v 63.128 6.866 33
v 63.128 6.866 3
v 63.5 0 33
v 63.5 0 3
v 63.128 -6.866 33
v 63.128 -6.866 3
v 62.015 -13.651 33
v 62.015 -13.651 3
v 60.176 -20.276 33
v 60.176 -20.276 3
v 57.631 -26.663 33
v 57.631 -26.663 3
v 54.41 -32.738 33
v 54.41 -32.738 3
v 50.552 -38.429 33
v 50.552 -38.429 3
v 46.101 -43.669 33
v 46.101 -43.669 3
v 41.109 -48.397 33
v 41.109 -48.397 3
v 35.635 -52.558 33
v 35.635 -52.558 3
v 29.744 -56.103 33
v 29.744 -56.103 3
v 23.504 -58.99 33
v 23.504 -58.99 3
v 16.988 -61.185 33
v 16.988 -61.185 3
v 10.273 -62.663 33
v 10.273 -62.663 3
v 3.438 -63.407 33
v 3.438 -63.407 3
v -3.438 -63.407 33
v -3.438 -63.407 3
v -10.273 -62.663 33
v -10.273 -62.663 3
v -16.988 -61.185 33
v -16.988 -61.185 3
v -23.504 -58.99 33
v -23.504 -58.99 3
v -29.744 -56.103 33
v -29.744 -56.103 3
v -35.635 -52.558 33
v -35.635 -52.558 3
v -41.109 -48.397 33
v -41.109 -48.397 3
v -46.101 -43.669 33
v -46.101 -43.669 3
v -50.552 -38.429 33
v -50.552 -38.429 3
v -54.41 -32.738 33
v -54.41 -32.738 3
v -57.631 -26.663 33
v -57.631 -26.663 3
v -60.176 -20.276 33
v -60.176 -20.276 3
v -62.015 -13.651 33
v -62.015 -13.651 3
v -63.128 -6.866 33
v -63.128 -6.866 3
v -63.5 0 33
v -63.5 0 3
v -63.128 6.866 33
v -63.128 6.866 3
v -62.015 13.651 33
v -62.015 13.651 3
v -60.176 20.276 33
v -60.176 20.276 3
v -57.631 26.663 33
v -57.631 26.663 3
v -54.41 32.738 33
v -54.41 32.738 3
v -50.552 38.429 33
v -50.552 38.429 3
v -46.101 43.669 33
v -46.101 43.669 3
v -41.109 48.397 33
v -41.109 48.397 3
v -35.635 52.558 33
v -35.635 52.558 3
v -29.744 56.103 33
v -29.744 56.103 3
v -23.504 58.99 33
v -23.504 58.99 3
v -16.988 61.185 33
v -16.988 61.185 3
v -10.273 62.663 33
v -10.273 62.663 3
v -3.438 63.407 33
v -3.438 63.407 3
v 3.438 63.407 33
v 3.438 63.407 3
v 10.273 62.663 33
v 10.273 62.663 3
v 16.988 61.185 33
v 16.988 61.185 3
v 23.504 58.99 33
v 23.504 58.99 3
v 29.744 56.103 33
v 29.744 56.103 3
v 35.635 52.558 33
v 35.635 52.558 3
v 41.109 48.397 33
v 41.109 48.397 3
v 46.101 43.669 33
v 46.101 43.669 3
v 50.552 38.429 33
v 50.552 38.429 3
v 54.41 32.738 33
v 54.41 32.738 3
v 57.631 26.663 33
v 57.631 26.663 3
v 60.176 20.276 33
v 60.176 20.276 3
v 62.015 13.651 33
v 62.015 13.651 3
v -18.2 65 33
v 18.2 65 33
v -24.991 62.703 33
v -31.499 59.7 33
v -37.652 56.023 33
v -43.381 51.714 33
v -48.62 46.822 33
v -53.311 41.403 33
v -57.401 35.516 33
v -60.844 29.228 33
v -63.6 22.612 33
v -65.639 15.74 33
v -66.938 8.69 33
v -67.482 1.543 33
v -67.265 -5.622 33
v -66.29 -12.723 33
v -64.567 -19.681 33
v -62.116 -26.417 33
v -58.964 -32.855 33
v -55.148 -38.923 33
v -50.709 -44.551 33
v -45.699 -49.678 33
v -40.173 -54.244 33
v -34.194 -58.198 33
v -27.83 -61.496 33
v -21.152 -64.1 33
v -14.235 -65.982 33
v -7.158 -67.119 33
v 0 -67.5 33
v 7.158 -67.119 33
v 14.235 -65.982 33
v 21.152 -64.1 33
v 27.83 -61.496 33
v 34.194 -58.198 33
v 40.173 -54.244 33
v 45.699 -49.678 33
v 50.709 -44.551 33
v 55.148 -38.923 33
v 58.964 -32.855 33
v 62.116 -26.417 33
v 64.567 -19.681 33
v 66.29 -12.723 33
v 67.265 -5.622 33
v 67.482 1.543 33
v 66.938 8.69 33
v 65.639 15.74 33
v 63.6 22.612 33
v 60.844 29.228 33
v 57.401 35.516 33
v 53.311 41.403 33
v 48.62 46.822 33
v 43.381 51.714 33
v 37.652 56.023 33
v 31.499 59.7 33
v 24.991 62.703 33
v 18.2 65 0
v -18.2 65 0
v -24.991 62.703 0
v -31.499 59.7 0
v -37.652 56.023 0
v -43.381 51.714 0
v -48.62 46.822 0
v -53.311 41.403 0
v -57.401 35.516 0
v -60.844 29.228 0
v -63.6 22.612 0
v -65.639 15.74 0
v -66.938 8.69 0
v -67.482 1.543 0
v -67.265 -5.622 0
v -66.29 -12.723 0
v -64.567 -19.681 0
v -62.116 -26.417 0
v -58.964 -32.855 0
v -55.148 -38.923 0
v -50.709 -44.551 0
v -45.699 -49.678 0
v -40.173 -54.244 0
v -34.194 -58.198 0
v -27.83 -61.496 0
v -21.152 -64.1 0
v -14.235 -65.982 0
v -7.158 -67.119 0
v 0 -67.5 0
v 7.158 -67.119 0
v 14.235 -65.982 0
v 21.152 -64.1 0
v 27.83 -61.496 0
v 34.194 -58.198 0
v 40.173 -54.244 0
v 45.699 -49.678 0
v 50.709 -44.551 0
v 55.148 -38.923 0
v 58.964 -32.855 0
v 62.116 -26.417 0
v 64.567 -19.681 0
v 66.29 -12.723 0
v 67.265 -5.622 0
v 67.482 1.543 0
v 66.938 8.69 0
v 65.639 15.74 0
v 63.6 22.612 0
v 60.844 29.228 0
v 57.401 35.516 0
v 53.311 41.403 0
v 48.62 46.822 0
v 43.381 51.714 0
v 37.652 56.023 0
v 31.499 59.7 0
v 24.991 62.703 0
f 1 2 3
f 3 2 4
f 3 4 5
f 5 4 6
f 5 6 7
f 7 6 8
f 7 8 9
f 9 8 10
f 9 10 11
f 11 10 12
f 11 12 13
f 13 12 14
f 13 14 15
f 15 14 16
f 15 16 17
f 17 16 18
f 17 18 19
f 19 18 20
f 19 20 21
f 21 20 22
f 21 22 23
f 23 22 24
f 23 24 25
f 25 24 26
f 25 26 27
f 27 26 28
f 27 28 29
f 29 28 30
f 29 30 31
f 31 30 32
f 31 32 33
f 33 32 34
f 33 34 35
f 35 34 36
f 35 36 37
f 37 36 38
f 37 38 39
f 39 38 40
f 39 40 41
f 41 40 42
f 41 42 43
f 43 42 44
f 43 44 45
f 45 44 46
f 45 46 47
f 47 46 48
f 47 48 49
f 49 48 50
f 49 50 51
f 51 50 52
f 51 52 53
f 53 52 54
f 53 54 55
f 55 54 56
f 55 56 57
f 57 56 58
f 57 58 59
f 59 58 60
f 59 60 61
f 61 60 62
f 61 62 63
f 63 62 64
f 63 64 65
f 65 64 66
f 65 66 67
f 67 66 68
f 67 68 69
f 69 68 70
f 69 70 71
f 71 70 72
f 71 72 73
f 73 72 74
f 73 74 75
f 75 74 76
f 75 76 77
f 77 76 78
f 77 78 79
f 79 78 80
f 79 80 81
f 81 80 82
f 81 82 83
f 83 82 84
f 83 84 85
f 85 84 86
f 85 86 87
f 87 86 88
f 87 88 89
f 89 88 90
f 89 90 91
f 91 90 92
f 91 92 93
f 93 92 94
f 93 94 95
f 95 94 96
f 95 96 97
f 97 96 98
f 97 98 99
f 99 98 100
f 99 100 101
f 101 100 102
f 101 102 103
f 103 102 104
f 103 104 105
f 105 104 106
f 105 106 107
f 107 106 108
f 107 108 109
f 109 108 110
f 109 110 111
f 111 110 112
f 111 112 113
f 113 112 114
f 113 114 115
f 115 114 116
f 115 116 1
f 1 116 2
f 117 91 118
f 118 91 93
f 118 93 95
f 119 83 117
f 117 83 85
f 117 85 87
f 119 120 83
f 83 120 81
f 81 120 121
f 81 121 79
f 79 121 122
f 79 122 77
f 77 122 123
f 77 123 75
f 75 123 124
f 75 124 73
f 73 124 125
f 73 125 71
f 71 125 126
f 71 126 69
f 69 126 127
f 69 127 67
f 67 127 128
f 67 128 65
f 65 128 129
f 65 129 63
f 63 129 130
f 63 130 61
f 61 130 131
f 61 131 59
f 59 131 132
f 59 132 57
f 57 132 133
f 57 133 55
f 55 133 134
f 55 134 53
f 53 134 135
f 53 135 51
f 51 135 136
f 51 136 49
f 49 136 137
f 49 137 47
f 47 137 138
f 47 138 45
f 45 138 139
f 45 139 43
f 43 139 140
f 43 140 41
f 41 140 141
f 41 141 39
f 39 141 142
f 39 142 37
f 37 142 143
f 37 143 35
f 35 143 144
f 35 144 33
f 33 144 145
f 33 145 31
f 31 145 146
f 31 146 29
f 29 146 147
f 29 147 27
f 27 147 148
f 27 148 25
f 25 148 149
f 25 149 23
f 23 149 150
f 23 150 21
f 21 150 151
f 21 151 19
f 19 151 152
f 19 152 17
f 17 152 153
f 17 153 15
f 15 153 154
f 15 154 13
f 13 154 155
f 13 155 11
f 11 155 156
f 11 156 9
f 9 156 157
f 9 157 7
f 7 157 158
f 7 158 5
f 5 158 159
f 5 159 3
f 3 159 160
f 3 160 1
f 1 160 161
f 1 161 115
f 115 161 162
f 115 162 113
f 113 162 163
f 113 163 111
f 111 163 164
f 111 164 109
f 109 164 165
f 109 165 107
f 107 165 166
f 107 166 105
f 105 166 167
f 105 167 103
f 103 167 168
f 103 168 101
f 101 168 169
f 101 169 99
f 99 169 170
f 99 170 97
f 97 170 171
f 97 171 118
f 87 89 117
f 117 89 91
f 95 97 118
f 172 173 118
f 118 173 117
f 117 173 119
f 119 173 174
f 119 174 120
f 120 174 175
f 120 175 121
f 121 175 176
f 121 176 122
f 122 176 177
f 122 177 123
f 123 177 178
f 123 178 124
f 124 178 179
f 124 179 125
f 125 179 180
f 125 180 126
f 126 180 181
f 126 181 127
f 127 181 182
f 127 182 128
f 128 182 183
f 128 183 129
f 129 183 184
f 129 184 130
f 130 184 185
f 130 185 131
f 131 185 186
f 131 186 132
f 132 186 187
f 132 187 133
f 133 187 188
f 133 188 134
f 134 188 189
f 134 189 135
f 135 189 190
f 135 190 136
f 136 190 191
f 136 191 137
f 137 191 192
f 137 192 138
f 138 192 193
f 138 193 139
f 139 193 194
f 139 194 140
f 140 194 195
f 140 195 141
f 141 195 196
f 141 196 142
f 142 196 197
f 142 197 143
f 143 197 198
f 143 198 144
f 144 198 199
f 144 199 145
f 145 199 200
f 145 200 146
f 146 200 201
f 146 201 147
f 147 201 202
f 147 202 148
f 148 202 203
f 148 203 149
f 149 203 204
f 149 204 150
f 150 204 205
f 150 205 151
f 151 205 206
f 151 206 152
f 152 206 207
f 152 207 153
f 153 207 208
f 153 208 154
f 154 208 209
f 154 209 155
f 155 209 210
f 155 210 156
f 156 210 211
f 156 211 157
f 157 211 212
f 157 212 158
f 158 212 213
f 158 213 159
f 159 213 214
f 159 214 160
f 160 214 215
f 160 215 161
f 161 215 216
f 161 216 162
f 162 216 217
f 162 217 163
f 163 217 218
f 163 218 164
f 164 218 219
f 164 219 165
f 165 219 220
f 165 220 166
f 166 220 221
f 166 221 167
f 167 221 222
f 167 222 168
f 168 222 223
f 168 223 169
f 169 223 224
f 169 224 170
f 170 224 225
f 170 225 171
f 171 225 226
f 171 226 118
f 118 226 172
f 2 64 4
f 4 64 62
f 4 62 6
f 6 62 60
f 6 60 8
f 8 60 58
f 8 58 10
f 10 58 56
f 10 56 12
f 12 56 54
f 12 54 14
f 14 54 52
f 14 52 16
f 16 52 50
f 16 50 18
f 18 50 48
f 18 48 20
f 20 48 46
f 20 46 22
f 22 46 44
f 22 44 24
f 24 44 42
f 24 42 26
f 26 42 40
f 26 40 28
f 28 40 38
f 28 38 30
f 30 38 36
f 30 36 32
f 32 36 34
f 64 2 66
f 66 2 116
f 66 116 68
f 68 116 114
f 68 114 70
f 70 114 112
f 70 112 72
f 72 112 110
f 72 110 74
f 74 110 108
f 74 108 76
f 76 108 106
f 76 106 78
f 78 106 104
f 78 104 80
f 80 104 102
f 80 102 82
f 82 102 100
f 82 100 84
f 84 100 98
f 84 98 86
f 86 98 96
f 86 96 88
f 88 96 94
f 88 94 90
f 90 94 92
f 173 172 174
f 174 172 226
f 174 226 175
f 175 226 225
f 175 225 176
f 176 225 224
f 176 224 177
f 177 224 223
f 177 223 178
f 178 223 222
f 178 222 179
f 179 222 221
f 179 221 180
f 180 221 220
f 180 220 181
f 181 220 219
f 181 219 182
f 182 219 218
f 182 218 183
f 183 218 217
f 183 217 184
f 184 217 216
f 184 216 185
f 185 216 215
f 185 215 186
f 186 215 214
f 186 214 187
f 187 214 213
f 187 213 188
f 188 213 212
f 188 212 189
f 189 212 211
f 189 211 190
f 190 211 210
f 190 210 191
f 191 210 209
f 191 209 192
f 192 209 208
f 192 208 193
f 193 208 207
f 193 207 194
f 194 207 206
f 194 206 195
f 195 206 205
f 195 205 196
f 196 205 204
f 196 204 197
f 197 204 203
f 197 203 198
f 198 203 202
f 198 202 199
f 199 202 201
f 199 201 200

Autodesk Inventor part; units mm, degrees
ref_plane "YZ Plane" through (0, 0, 0) normal (1, 0, 0) x (0, 1, 0)
ref_plane "XZ Plane" through (0, 0, 0) normal (0, 1, 0) x (-1, 0, 0)
ref_plane "XY Plane" through (0, 0, 0) normal (0, 0, 1) x (1, 0, 0)
sketch "Náčrt1" plane through (0, 0, 0) normal (0, 0, 1) x (1, 0, 0)
  line L0 (0, 95.014) -> (0, -94.5857) projected
  line L1 (-94.5, 0) -> (94.5, 0) projected
  circle A0 centre (0, 0) radius 63.5
  arc A1 (-53.5, 41.1582) -> (53.5, 41.1582) centre (0, 0) ccw
  line L2 (-18.2003, 65) -> (18.2003, 65)
  arc A2 (53.8673, 40.6764) -> (18.2003, 65) centre (0, 0) ccw
  arc A3 (-18.2003, 65) -> (-53.5, 41.1582) centre (0, 0) ccw
  point P0 (53.5, 41.1582)
  dimension "d0" = 127
  dimension "d1" = 135
  dimension "d2" = 107
  dimension "d8" = 65
extrude "Vysunutí1" add sketch "Náčrt1" along normal blind 3
sketch "Náčrt2" plane through (0, 0, 3) normal (0, 0, 1) x (1, 0, 0)
  circle A0 centre (0, 0) radius 63.5
  arc A1 (-18.2003, 65) -> (18.2003, 65) centre (0, 0) ccw projected
  line L0 (18.2003, 65) -> (-18.2003, 65) projected
  line L1 (-18.2003, 65) -> (18.2003, 65)
  line L2 (18.2003, 65) -> (-18.2003, 65)
  circle A2 centre (0, 0) radius 67.5
  circle A3 centre (0, 0) radius 63.5
  point P0 (53.5, 72.3723)
  point P1 (-53.5, 72.3723)
  dimension "d5" = 127
extrude "Vysunutí2" add sketch "Náčrt2" along normal blind 30 contours L0 A1
properties part number "Miska"
